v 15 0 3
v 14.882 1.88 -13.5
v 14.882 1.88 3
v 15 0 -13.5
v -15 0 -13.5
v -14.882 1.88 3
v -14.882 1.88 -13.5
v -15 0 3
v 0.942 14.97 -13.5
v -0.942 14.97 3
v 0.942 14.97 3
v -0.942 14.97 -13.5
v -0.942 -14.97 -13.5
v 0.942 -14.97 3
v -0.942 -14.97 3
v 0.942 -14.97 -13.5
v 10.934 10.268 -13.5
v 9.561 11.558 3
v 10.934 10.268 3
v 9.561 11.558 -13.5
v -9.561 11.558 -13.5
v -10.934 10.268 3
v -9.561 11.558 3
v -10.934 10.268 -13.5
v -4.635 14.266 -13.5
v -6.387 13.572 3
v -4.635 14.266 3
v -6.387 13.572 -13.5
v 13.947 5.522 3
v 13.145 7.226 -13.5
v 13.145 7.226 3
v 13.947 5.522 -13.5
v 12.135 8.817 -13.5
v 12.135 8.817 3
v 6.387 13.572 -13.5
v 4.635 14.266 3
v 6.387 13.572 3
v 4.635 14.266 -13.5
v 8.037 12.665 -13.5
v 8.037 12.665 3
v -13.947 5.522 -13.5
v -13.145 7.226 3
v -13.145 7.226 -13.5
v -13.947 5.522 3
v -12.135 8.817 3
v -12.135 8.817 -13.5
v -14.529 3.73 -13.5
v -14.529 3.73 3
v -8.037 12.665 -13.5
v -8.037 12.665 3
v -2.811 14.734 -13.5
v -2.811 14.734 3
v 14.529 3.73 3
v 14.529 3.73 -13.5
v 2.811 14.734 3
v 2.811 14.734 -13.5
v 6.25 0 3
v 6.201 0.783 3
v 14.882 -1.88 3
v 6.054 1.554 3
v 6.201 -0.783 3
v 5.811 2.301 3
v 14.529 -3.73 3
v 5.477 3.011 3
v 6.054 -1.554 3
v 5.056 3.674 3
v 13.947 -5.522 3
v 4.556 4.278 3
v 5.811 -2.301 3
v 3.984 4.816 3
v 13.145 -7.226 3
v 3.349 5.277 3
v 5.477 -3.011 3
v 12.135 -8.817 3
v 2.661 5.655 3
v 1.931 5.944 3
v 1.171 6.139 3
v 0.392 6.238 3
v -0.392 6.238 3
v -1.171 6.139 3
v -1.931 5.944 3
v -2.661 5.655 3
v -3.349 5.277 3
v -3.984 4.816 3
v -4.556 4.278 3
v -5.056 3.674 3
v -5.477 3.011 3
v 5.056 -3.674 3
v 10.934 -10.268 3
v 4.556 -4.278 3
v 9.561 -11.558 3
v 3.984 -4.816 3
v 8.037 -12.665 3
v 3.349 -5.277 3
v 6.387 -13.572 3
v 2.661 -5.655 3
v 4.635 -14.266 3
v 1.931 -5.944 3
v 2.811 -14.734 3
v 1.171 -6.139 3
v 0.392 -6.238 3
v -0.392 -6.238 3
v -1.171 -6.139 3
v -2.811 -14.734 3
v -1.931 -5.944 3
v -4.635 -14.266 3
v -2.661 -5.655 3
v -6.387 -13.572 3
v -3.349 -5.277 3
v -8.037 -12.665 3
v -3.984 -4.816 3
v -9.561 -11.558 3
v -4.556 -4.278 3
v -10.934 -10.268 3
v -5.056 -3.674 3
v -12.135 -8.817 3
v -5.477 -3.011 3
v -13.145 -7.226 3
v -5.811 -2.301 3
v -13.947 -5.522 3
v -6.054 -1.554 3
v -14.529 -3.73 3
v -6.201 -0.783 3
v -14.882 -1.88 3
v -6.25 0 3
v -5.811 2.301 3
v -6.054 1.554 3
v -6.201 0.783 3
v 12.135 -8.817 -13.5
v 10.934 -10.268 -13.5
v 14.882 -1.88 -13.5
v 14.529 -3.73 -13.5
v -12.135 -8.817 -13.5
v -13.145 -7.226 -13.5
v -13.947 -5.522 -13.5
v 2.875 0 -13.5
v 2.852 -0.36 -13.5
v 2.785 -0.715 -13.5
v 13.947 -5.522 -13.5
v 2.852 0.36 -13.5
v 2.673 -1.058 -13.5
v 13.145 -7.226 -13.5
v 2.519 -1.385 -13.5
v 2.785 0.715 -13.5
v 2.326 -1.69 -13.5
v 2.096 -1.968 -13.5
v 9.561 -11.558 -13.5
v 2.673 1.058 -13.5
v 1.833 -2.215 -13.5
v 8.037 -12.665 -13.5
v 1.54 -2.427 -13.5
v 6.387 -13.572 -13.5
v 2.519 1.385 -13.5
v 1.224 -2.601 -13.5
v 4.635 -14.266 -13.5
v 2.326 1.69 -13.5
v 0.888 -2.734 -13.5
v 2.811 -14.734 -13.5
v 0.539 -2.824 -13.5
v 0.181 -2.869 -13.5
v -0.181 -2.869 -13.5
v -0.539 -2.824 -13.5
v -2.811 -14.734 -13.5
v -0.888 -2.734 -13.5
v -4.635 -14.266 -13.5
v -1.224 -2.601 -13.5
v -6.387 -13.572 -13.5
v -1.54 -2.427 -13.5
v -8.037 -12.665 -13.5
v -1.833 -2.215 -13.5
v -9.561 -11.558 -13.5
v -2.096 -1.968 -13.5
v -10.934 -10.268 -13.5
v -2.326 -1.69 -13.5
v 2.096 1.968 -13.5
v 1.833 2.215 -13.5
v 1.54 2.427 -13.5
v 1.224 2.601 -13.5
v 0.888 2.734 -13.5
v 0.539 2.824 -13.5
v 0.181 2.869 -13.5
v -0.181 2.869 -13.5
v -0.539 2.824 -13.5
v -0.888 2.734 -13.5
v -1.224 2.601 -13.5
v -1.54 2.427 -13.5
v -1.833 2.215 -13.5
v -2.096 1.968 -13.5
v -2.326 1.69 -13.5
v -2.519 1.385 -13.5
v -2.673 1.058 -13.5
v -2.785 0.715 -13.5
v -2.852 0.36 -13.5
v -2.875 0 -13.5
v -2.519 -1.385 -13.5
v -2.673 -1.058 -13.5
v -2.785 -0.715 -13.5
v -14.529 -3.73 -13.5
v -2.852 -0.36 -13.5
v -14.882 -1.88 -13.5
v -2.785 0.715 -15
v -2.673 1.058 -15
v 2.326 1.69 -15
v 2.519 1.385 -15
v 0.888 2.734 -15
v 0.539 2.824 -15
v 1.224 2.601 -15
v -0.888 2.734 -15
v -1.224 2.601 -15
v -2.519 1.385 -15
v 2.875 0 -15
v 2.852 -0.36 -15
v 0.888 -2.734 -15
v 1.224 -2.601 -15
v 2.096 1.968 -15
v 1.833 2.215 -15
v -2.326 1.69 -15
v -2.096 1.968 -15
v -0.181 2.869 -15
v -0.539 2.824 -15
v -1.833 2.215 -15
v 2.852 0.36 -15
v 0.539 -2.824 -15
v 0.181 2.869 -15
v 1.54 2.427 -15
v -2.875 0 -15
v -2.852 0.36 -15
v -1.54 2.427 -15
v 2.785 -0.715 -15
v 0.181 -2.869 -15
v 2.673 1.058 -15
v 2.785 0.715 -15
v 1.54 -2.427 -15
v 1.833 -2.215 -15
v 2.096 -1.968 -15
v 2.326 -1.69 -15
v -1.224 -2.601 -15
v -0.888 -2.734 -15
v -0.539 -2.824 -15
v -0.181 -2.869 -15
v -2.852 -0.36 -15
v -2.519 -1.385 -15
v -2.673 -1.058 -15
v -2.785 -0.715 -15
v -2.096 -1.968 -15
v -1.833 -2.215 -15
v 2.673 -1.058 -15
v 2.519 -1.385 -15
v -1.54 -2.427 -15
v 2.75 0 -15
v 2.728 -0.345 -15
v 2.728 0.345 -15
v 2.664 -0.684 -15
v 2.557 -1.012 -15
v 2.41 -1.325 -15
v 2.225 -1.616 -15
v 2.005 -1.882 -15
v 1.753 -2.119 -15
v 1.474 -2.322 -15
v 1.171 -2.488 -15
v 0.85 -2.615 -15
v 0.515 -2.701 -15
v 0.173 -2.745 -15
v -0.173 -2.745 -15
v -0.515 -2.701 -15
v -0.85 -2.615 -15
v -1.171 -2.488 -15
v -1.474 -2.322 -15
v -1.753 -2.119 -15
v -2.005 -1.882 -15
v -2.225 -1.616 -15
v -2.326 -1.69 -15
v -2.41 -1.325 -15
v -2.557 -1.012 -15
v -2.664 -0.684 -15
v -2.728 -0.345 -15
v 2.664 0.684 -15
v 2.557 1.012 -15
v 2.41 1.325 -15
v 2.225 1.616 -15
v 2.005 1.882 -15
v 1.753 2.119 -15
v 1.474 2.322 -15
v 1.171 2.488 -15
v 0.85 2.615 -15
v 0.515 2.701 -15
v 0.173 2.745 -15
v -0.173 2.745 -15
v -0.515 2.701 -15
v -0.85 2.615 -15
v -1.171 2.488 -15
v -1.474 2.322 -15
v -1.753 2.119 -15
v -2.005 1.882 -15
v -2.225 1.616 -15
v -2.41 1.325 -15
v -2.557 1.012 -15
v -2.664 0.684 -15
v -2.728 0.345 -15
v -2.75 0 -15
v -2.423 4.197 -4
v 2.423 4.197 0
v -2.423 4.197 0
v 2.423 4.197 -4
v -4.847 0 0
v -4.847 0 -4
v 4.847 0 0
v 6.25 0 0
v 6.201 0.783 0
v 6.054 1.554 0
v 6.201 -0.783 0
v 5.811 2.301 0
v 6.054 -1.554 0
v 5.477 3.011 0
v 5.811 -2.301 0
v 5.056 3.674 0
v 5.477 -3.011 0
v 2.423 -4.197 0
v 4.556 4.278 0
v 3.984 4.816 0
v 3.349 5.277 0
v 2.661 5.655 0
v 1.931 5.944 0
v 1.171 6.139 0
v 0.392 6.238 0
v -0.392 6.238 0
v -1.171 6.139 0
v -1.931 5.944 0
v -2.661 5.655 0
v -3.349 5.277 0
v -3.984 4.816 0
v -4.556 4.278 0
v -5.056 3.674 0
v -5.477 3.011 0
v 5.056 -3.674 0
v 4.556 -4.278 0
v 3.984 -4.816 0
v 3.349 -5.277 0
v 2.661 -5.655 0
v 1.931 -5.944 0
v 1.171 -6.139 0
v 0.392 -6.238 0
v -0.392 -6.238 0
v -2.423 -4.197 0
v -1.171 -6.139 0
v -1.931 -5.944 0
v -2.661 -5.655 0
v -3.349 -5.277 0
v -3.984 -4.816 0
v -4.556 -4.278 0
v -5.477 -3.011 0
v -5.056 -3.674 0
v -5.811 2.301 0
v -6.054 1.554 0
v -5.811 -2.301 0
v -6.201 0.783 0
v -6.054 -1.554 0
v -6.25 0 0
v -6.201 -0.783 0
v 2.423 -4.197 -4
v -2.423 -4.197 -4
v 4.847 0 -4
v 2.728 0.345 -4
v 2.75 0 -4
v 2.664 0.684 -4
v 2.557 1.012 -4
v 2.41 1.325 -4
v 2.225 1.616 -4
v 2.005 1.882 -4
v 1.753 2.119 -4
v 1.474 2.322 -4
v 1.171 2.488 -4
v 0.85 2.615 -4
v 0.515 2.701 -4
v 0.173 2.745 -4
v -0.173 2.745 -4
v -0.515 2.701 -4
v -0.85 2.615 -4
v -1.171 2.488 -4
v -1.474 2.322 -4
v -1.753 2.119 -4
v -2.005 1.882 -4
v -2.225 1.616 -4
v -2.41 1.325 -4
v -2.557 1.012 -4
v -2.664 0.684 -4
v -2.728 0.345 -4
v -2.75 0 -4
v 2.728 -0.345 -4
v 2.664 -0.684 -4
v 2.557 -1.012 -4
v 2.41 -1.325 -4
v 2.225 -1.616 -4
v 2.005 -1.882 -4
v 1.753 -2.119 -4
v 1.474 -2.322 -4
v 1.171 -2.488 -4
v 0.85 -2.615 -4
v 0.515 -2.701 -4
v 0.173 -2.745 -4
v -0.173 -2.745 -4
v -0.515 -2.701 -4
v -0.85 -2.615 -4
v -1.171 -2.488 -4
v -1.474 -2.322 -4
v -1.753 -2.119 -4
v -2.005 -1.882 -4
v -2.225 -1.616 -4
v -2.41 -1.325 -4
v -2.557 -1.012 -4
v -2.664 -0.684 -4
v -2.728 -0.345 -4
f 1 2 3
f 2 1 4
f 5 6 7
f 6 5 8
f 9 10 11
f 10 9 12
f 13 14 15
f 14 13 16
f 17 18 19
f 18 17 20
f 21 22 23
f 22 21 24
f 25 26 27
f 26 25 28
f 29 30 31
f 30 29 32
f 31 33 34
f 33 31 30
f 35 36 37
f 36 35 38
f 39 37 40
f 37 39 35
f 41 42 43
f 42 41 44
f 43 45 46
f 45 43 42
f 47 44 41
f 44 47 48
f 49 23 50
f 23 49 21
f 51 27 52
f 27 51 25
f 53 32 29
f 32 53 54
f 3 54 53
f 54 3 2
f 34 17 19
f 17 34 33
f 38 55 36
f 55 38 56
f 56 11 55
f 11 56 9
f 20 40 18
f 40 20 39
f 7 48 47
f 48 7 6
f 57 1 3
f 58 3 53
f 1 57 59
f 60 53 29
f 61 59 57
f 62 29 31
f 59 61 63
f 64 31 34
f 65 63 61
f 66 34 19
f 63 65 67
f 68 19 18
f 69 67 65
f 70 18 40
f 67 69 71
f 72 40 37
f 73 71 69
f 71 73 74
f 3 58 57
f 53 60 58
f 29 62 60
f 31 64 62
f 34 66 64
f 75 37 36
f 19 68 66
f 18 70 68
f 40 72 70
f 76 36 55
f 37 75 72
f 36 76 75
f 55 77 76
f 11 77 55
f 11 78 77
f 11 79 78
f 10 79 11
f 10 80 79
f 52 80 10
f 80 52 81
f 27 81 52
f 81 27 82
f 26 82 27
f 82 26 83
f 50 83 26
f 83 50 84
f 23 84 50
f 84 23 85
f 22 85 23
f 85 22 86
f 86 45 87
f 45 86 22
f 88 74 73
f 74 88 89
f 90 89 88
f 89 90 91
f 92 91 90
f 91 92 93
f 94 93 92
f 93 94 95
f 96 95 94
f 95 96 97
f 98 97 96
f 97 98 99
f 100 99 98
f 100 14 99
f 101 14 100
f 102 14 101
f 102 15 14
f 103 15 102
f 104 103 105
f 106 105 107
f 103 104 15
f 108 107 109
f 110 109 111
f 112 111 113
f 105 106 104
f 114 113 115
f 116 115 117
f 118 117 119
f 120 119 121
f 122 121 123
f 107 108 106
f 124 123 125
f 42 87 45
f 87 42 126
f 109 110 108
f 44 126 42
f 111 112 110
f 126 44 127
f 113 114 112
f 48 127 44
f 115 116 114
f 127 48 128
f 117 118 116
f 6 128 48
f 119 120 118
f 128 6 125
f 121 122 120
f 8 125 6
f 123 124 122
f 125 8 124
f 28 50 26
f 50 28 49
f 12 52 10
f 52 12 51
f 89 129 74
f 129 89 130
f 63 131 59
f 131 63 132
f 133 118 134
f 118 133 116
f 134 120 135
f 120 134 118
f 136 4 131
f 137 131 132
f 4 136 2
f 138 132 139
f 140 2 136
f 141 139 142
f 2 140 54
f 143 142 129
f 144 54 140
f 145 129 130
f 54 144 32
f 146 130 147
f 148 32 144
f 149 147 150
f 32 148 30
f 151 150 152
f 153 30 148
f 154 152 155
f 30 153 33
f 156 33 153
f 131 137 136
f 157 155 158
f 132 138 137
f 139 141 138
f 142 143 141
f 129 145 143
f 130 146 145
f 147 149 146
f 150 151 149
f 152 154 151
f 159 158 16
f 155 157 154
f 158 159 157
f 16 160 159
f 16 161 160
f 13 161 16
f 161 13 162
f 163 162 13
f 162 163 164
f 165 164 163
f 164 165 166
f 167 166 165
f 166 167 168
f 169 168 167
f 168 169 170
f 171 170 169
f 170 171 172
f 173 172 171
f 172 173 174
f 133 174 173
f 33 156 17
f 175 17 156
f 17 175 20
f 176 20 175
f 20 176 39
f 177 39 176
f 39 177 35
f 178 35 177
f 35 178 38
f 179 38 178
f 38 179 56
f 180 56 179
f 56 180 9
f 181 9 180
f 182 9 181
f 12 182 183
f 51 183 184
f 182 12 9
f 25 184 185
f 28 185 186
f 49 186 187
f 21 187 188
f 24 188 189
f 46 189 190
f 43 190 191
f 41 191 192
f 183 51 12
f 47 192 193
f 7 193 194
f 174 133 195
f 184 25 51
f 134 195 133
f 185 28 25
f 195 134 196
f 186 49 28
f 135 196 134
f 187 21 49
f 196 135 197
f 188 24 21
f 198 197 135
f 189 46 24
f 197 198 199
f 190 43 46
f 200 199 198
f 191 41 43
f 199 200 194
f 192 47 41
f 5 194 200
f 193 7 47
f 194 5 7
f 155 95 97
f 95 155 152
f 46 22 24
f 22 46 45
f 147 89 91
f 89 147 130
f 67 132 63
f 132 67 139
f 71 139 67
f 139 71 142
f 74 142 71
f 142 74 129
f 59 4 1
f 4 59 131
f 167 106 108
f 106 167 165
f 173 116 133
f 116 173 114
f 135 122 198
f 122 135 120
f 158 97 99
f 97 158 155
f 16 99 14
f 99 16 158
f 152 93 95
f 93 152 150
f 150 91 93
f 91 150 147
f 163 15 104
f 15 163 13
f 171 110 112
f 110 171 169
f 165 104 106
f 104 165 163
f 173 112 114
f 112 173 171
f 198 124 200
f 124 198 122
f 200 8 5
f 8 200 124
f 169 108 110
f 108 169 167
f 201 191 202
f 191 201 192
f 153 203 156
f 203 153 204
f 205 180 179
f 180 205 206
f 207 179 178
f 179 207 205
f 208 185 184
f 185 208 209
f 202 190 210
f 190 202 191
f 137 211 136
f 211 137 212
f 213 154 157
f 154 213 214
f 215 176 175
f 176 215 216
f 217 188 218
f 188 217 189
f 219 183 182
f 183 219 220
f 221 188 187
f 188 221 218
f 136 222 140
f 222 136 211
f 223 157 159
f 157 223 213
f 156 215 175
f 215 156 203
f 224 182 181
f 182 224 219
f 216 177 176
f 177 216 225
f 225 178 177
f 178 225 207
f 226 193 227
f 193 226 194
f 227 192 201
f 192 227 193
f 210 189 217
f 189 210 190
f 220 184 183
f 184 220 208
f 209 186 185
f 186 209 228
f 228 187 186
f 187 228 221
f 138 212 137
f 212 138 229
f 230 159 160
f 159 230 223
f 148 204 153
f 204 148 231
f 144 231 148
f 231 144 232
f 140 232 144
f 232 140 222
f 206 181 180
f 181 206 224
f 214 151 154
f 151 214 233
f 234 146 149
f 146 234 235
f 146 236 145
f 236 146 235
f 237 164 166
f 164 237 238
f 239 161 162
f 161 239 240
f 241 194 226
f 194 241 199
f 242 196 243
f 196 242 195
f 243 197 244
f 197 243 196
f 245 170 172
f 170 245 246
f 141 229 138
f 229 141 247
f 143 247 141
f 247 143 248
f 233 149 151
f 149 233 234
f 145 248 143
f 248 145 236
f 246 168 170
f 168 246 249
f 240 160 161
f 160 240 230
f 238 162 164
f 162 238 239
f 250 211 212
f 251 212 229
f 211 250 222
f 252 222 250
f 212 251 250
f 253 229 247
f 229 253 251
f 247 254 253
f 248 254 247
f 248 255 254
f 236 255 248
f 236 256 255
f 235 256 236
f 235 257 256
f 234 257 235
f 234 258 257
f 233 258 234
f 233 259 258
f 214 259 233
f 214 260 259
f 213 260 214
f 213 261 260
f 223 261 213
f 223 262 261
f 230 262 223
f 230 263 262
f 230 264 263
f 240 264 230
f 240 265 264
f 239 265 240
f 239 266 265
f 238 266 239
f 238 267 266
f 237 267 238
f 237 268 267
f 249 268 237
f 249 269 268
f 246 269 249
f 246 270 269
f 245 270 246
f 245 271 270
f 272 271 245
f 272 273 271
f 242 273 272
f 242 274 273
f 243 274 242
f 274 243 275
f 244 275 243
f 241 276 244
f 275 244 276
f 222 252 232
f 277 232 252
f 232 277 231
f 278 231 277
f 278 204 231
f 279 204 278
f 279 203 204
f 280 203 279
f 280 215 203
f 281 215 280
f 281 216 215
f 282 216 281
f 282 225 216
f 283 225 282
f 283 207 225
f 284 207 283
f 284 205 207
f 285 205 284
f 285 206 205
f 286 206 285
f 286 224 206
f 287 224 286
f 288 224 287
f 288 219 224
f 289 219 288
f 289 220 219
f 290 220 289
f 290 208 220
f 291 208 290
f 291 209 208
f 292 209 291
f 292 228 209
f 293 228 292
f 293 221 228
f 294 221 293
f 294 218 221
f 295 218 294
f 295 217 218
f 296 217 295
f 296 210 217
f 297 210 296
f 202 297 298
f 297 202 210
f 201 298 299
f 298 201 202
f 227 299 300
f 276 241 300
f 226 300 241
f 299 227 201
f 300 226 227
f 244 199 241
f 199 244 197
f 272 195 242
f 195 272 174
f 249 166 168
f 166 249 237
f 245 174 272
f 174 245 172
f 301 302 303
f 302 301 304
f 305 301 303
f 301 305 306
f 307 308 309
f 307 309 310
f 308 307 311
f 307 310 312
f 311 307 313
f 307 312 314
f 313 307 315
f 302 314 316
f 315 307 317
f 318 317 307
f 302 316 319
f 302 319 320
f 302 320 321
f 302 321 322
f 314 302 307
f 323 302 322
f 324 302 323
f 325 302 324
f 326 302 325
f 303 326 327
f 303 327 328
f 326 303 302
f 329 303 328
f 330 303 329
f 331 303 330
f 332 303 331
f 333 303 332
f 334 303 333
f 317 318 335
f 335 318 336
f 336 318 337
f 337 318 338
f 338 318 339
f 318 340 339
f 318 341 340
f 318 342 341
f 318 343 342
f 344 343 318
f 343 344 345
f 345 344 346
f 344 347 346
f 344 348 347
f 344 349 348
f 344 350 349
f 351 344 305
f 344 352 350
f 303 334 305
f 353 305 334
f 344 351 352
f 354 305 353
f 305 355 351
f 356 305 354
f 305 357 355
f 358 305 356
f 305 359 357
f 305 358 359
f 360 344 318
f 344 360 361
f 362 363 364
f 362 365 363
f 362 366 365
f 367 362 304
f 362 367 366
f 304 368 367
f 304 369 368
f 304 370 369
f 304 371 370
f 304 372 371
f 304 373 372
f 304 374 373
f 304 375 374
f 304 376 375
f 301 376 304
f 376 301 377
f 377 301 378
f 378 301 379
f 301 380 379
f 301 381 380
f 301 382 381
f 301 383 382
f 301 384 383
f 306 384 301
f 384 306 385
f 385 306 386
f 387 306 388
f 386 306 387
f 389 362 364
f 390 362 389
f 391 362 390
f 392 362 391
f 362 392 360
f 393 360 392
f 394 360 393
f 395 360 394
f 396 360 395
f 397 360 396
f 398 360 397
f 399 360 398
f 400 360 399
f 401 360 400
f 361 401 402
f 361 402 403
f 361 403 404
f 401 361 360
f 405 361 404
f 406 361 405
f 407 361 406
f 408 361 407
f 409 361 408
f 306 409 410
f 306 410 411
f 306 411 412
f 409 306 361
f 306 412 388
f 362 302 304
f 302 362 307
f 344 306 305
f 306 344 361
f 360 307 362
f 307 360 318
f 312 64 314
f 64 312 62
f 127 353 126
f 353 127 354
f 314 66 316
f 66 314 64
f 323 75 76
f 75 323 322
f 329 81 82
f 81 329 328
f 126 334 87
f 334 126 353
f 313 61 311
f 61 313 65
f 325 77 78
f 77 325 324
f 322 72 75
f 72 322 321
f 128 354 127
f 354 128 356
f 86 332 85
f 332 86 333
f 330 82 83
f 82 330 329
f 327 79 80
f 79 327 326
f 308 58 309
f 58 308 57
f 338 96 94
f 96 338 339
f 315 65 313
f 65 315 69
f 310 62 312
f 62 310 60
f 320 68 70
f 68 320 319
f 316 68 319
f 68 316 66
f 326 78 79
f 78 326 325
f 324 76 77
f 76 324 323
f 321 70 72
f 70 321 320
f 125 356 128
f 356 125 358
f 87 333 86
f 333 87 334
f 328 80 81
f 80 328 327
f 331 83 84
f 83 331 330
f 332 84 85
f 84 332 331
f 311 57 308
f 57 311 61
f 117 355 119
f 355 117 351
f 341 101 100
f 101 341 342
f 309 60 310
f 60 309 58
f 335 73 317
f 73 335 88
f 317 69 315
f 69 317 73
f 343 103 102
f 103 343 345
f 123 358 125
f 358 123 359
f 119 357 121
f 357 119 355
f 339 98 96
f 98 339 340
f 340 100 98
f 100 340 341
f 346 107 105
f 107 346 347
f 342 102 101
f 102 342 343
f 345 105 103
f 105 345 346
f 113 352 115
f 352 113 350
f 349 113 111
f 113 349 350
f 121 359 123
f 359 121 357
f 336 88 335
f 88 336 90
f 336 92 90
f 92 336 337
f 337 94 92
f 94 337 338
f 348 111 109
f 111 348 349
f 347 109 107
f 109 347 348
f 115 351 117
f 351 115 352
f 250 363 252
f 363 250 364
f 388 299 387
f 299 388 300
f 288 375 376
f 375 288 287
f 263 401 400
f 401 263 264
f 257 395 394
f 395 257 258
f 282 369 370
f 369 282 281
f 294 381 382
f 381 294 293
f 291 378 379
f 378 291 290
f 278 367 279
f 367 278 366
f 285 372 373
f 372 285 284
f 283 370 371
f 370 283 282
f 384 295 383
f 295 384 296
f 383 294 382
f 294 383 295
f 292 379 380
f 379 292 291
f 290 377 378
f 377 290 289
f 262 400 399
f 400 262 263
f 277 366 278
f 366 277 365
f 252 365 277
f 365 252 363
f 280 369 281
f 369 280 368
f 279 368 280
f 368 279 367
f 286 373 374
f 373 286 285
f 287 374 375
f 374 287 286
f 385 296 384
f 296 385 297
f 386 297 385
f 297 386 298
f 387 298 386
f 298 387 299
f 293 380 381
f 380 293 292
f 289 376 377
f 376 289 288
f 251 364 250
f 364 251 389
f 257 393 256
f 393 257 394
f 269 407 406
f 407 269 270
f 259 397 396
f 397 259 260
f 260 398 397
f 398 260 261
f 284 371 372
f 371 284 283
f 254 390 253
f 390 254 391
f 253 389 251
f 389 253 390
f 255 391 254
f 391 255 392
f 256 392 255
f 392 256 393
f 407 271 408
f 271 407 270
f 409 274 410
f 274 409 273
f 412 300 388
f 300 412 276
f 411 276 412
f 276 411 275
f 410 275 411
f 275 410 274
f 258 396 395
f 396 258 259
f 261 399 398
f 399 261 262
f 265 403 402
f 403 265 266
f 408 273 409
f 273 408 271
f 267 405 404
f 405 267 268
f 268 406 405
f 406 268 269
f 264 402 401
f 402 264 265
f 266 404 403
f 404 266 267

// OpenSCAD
$fn = 50;

difference() {
	union() {
		translate(v = [0, 0, -13.5]) {
			cylinder(h = 16.5, r = 15.0);
		}
		#translate(v = [0, 0, -15.0]) {
			cylinder(h = 15, r = 2.875);
		}
	}
	union() {
		translate(v = [0, 0, 0]) {
			rotate(a = [0, 0, 0]) {
				difference() {
					union() {
						translate(v = [0, 0, -4]) {
							linear_extrude(height = 4) {
								polygon(points = [[4.8468, 0.0], [2.4234000000000004, 4.197451927062417], [-2.423399999999999, 4.197451927062417], [-4.8468, 5.935618106107392e-16], [-2.423400000000002, -4.197451927062416], [2.423399999999997, -4.197451927062419]]);
							}
						}
					}
					union();
				}
			}
		}
		#cylinder(h = 3, r = 6.25);
		#translate(v = [0, 0, -100.0]) {
			cylinder(h = 200, r = 2.75);
		}
	}
}
